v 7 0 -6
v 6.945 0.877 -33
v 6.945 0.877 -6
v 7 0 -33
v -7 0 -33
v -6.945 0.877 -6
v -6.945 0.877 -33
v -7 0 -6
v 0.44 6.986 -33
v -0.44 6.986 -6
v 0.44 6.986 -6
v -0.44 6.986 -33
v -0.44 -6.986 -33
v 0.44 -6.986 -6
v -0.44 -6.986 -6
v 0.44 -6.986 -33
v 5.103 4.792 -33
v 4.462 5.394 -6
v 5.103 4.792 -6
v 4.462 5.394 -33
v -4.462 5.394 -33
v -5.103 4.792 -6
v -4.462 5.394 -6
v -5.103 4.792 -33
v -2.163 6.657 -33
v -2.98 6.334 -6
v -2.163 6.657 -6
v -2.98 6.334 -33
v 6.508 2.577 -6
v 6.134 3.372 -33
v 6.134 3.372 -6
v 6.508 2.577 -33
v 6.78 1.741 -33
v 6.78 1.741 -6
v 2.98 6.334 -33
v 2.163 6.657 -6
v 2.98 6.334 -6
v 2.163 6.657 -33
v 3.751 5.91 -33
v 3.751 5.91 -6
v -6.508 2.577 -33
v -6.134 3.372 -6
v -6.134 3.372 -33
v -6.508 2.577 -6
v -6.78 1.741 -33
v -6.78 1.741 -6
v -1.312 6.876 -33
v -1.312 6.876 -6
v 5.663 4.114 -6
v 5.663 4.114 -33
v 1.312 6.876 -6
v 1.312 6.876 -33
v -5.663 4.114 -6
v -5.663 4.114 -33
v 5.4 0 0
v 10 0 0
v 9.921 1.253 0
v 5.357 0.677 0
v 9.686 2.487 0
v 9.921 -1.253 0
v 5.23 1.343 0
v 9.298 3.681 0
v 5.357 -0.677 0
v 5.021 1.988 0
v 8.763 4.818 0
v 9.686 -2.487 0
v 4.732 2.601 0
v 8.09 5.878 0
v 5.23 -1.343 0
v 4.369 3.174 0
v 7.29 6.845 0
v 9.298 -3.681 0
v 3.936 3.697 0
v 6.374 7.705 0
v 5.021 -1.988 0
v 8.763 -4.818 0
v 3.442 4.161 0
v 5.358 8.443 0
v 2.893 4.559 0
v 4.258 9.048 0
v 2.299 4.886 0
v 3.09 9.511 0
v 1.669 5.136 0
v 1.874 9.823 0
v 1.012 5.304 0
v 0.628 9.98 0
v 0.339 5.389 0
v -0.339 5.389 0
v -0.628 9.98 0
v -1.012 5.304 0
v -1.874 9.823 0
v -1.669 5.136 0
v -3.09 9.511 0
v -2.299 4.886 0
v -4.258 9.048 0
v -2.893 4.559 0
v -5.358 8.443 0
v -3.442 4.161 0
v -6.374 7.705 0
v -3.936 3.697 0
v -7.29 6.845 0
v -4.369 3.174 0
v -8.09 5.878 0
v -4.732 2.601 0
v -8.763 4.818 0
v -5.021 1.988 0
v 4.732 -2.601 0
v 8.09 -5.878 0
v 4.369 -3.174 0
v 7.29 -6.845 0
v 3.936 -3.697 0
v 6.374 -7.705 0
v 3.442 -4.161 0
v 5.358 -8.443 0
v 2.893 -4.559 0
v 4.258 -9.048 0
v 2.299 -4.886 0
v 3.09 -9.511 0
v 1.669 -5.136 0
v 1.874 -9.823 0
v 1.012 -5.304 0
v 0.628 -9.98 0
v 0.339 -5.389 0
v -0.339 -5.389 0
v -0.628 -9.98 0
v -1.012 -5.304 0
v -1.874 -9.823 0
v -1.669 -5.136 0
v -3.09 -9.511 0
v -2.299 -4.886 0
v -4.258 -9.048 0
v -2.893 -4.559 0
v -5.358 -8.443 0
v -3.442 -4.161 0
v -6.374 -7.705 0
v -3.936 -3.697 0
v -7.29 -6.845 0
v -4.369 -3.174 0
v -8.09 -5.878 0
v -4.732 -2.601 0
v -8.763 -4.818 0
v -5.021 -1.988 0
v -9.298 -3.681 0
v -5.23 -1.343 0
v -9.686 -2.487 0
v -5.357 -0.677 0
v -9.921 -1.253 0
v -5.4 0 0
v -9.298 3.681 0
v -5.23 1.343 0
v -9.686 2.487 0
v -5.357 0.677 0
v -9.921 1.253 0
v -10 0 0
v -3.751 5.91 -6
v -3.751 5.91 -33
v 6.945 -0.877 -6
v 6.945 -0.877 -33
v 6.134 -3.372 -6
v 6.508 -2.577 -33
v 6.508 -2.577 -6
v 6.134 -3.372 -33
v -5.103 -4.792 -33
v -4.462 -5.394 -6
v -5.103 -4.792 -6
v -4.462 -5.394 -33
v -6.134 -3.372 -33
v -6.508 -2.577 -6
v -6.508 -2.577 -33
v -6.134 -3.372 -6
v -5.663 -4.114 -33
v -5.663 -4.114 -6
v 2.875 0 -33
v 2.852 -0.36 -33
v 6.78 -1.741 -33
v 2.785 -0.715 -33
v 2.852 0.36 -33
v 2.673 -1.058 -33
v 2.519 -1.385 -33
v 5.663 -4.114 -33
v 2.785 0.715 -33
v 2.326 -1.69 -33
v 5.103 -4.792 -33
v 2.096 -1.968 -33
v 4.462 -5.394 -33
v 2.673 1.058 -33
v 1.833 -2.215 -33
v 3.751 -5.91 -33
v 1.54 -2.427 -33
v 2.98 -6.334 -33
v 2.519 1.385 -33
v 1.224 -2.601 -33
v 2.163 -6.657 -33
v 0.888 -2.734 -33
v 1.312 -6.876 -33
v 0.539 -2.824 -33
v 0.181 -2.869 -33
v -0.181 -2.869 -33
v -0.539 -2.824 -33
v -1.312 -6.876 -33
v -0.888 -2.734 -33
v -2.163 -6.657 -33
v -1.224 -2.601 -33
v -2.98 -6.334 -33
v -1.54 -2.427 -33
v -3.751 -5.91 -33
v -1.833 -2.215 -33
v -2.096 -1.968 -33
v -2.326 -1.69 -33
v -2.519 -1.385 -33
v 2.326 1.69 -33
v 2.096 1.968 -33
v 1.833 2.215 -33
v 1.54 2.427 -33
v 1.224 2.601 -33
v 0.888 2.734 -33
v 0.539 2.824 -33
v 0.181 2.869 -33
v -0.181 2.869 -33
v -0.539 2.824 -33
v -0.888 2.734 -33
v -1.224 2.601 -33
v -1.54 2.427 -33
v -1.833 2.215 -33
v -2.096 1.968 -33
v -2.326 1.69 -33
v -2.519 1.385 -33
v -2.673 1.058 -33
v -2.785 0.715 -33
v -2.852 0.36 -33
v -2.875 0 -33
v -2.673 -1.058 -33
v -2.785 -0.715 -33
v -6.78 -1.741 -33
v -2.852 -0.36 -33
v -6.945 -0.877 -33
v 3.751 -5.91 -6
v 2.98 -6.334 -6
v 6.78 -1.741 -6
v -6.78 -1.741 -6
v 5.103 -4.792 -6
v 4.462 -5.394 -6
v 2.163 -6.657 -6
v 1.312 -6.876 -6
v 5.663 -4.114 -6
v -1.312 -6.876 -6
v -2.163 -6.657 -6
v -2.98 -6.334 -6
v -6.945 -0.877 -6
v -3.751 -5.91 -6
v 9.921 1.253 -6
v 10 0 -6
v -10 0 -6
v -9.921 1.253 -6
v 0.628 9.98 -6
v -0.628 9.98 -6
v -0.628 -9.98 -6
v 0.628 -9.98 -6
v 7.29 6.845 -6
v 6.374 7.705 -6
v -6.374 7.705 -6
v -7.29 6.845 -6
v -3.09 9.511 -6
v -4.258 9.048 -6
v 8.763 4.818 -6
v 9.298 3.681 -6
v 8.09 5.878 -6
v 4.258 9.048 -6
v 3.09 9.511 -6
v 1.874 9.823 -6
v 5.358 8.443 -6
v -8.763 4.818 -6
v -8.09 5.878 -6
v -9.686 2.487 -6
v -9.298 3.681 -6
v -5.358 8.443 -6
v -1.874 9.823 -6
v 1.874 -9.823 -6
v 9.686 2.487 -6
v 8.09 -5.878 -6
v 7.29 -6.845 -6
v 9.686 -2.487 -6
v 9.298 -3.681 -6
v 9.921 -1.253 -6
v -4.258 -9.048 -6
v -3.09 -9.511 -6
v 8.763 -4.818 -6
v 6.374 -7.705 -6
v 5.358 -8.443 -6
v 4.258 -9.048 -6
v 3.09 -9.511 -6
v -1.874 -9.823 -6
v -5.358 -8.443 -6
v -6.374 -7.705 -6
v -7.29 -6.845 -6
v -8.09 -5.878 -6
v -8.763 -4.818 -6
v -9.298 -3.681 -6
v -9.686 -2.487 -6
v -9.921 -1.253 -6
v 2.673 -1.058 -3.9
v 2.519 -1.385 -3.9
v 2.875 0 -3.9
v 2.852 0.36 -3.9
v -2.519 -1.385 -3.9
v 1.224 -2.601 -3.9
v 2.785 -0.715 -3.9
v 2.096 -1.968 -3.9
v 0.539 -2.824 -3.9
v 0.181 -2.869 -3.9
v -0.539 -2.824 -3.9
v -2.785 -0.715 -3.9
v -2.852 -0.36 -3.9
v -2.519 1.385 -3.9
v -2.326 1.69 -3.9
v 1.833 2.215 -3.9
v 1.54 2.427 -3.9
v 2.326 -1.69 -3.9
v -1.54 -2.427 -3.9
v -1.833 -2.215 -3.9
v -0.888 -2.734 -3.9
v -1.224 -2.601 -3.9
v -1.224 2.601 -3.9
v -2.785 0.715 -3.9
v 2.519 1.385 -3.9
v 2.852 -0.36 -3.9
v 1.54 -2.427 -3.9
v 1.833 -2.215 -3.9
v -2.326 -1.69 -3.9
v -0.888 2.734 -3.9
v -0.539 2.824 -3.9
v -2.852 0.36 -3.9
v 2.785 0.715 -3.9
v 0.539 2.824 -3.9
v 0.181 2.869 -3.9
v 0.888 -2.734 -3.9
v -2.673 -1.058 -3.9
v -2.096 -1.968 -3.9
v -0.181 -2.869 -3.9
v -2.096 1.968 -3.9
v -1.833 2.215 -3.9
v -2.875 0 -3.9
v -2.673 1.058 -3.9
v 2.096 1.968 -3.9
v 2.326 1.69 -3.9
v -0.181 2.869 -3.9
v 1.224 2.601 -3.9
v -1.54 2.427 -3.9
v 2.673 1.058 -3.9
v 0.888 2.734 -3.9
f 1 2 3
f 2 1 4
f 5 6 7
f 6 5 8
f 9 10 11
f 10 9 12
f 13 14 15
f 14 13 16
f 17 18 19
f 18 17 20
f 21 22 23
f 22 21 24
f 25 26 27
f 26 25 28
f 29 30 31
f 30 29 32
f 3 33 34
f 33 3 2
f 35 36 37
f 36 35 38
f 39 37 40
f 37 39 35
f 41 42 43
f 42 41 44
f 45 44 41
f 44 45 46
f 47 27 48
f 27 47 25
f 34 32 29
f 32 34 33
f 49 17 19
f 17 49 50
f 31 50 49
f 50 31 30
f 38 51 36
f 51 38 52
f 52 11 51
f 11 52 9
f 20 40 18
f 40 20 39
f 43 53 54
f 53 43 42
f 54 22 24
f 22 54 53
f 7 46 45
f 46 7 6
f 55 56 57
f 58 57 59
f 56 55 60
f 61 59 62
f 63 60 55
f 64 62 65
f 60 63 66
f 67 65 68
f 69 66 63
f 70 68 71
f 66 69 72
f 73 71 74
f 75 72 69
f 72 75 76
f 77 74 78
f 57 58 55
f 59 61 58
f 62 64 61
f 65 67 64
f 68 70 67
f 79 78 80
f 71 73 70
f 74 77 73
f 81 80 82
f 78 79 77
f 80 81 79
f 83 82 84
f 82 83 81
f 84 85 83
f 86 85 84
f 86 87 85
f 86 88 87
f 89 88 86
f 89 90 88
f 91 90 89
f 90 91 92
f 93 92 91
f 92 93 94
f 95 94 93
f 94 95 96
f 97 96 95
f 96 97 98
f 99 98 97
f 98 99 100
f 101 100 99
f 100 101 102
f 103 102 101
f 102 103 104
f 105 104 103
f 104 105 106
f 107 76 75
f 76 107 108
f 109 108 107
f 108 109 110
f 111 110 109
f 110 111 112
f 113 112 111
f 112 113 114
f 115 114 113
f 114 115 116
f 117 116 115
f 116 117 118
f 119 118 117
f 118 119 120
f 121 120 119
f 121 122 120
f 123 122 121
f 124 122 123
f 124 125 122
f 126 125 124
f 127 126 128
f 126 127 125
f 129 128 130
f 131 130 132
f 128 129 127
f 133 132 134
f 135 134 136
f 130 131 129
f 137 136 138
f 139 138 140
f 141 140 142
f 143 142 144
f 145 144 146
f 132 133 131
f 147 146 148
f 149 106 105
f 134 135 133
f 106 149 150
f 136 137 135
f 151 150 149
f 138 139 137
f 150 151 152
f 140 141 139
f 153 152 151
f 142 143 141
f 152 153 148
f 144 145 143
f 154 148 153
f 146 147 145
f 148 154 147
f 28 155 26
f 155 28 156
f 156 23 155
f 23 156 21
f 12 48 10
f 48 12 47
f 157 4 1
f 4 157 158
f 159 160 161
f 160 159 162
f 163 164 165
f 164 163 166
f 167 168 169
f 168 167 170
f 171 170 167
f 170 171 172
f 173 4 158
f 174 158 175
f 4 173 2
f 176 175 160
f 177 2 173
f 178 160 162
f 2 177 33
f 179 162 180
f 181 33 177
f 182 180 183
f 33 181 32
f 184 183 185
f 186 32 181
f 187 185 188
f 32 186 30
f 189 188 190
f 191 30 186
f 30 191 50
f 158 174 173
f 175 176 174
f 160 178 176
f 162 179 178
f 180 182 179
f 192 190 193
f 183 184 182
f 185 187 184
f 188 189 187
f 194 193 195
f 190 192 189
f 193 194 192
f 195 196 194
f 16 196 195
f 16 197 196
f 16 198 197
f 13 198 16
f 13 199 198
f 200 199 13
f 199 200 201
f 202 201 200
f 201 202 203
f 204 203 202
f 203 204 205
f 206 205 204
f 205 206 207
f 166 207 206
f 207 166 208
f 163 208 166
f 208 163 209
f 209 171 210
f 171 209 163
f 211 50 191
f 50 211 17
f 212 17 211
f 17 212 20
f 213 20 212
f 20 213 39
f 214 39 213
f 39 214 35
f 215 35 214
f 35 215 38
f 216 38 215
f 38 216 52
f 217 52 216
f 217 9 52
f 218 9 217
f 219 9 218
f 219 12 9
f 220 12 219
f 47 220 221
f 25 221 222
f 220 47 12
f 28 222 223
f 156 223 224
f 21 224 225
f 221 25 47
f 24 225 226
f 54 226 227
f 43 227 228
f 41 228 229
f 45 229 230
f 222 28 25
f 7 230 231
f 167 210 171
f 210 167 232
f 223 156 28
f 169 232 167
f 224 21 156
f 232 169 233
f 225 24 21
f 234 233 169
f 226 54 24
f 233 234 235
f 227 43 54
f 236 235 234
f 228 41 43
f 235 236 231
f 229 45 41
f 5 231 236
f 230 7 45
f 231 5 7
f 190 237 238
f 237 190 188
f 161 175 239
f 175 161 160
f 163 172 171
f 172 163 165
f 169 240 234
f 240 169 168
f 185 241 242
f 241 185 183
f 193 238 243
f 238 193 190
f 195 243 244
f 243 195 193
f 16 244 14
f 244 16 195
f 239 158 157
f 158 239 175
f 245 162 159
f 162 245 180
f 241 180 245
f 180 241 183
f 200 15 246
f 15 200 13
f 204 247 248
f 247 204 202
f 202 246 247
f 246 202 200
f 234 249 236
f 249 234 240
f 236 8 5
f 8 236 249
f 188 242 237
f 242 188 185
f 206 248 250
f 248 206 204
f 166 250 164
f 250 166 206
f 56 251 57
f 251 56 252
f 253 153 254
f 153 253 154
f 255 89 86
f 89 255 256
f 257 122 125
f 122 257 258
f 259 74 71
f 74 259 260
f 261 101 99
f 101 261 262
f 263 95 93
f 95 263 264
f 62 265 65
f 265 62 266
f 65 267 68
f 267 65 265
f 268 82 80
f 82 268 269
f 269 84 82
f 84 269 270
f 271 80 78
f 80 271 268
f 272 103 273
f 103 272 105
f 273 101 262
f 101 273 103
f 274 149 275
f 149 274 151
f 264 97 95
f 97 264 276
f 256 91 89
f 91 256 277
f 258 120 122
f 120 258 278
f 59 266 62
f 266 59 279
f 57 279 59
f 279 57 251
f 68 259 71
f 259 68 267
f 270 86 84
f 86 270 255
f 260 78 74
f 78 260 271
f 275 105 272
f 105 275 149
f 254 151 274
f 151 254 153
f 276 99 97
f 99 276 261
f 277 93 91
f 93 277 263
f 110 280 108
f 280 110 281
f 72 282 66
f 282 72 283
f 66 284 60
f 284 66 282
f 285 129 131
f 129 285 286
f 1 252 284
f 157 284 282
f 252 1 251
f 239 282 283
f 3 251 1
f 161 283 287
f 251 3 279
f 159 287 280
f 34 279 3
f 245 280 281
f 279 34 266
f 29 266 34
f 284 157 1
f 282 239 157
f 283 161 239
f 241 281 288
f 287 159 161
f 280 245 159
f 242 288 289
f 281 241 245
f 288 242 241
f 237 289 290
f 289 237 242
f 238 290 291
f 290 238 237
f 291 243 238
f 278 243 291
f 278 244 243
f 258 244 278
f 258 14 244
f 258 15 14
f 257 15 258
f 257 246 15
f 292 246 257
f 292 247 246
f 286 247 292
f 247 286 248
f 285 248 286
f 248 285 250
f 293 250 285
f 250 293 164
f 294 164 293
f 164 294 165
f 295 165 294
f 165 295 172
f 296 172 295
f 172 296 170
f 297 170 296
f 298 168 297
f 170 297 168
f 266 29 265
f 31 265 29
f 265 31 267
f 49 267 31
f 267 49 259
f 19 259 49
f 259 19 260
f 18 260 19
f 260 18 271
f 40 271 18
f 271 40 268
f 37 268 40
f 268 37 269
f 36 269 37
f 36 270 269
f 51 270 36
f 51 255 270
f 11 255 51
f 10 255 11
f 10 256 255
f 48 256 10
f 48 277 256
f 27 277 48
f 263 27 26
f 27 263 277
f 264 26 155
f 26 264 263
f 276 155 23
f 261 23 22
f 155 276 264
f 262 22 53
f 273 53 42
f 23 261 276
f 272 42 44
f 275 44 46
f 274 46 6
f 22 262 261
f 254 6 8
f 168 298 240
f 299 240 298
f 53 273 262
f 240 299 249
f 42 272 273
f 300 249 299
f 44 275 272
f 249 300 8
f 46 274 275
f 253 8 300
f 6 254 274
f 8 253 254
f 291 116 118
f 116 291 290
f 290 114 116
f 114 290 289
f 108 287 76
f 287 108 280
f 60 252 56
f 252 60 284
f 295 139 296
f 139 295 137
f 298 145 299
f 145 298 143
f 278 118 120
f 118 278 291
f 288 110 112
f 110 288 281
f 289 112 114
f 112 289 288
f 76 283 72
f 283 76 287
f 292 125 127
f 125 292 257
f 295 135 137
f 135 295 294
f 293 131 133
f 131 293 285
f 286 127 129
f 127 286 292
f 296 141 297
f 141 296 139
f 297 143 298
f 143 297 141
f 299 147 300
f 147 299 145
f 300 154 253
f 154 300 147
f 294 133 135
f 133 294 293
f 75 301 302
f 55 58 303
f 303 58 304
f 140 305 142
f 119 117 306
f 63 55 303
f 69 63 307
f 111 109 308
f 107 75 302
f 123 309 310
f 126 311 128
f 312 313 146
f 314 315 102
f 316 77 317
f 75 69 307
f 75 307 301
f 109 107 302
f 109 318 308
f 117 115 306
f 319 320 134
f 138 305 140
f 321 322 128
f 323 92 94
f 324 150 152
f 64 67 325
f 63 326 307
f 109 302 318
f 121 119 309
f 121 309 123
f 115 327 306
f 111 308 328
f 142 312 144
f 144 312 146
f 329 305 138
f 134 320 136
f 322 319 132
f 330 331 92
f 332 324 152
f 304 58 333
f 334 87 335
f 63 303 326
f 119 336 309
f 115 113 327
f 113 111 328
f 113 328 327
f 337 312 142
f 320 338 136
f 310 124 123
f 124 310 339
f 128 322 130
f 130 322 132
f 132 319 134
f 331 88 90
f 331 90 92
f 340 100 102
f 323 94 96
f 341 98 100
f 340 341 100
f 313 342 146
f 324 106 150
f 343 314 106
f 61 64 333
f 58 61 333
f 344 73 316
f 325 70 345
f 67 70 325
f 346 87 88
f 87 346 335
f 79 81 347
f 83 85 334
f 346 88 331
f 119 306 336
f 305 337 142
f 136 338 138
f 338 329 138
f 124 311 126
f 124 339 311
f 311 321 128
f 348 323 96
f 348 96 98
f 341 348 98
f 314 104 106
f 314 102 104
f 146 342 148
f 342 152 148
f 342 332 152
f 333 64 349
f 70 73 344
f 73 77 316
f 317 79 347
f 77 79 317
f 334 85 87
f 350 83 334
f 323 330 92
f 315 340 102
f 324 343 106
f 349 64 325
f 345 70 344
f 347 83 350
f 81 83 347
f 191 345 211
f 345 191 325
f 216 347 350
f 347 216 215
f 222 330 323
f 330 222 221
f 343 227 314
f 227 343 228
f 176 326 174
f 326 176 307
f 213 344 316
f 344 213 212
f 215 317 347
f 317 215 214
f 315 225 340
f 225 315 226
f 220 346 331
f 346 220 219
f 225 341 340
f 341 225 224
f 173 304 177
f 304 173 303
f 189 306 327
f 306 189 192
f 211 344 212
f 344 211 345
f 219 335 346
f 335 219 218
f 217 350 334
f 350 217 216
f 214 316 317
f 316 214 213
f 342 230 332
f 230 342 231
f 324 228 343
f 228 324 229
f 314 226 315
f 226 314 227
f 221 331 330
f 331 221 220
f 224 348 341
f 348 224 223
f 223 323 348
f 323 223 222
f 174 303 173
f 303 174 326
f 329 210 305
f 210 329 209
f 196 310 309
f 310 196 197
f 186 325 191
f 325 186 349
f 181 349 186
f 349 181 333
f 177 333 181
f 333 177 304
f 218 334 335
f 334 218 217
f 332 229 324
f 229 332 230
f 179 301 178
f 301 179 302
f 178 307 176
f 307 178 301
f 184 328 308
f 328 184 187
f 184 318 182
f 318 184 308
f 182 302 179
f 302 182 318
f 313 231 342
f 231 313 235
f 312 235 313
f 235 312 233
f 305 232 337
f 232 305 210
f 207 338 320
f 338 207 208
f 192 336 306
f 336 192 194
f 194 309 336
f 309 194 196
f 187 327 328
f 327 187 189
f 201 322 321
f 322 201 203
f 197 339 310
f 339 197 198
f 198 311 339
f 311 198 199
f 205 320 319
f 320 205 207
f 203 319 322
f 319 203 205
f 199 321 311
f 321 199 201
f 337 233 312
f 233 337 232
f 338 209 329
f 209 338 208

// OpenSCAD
$fn = 50;


difference() {
	union() {
		translate(v = [0, 0, -33.0000000000]) {
			cylinder(h = 33, r = 7.0000000000);
		}
		translate(v = [0, 0, -6.0000000000]) {
			cylinder(h = 6, r = 10.0000000000);
		}
	}
	union() {
		translate(v = [0, 0, 0]) {
			rotate(a = [0, 0, 0]) {
				difference() {
					union() {
						#translate(v = [0, 0, -33.0000000000]) {
							cylinder(h = 33, r = 2.6000000000);
						}
						#translate(v = [0, 0, -3.9000000000]) {
							cylinder(h = 3.9000000000, r1 = 2.8750000000, r2 = 5.4000000000);
						}
						#translate(v = [0, 0, -33.0000000000]) {
							cylinder(h = 33, r = 2.8750000000);
						}
						#translate(v = [0, 0, -33.0000000000]) {
							cylinder(h = 33, r = 2.6000000000);
						}
					}
					union();
				}
			}
		}
	}
}
